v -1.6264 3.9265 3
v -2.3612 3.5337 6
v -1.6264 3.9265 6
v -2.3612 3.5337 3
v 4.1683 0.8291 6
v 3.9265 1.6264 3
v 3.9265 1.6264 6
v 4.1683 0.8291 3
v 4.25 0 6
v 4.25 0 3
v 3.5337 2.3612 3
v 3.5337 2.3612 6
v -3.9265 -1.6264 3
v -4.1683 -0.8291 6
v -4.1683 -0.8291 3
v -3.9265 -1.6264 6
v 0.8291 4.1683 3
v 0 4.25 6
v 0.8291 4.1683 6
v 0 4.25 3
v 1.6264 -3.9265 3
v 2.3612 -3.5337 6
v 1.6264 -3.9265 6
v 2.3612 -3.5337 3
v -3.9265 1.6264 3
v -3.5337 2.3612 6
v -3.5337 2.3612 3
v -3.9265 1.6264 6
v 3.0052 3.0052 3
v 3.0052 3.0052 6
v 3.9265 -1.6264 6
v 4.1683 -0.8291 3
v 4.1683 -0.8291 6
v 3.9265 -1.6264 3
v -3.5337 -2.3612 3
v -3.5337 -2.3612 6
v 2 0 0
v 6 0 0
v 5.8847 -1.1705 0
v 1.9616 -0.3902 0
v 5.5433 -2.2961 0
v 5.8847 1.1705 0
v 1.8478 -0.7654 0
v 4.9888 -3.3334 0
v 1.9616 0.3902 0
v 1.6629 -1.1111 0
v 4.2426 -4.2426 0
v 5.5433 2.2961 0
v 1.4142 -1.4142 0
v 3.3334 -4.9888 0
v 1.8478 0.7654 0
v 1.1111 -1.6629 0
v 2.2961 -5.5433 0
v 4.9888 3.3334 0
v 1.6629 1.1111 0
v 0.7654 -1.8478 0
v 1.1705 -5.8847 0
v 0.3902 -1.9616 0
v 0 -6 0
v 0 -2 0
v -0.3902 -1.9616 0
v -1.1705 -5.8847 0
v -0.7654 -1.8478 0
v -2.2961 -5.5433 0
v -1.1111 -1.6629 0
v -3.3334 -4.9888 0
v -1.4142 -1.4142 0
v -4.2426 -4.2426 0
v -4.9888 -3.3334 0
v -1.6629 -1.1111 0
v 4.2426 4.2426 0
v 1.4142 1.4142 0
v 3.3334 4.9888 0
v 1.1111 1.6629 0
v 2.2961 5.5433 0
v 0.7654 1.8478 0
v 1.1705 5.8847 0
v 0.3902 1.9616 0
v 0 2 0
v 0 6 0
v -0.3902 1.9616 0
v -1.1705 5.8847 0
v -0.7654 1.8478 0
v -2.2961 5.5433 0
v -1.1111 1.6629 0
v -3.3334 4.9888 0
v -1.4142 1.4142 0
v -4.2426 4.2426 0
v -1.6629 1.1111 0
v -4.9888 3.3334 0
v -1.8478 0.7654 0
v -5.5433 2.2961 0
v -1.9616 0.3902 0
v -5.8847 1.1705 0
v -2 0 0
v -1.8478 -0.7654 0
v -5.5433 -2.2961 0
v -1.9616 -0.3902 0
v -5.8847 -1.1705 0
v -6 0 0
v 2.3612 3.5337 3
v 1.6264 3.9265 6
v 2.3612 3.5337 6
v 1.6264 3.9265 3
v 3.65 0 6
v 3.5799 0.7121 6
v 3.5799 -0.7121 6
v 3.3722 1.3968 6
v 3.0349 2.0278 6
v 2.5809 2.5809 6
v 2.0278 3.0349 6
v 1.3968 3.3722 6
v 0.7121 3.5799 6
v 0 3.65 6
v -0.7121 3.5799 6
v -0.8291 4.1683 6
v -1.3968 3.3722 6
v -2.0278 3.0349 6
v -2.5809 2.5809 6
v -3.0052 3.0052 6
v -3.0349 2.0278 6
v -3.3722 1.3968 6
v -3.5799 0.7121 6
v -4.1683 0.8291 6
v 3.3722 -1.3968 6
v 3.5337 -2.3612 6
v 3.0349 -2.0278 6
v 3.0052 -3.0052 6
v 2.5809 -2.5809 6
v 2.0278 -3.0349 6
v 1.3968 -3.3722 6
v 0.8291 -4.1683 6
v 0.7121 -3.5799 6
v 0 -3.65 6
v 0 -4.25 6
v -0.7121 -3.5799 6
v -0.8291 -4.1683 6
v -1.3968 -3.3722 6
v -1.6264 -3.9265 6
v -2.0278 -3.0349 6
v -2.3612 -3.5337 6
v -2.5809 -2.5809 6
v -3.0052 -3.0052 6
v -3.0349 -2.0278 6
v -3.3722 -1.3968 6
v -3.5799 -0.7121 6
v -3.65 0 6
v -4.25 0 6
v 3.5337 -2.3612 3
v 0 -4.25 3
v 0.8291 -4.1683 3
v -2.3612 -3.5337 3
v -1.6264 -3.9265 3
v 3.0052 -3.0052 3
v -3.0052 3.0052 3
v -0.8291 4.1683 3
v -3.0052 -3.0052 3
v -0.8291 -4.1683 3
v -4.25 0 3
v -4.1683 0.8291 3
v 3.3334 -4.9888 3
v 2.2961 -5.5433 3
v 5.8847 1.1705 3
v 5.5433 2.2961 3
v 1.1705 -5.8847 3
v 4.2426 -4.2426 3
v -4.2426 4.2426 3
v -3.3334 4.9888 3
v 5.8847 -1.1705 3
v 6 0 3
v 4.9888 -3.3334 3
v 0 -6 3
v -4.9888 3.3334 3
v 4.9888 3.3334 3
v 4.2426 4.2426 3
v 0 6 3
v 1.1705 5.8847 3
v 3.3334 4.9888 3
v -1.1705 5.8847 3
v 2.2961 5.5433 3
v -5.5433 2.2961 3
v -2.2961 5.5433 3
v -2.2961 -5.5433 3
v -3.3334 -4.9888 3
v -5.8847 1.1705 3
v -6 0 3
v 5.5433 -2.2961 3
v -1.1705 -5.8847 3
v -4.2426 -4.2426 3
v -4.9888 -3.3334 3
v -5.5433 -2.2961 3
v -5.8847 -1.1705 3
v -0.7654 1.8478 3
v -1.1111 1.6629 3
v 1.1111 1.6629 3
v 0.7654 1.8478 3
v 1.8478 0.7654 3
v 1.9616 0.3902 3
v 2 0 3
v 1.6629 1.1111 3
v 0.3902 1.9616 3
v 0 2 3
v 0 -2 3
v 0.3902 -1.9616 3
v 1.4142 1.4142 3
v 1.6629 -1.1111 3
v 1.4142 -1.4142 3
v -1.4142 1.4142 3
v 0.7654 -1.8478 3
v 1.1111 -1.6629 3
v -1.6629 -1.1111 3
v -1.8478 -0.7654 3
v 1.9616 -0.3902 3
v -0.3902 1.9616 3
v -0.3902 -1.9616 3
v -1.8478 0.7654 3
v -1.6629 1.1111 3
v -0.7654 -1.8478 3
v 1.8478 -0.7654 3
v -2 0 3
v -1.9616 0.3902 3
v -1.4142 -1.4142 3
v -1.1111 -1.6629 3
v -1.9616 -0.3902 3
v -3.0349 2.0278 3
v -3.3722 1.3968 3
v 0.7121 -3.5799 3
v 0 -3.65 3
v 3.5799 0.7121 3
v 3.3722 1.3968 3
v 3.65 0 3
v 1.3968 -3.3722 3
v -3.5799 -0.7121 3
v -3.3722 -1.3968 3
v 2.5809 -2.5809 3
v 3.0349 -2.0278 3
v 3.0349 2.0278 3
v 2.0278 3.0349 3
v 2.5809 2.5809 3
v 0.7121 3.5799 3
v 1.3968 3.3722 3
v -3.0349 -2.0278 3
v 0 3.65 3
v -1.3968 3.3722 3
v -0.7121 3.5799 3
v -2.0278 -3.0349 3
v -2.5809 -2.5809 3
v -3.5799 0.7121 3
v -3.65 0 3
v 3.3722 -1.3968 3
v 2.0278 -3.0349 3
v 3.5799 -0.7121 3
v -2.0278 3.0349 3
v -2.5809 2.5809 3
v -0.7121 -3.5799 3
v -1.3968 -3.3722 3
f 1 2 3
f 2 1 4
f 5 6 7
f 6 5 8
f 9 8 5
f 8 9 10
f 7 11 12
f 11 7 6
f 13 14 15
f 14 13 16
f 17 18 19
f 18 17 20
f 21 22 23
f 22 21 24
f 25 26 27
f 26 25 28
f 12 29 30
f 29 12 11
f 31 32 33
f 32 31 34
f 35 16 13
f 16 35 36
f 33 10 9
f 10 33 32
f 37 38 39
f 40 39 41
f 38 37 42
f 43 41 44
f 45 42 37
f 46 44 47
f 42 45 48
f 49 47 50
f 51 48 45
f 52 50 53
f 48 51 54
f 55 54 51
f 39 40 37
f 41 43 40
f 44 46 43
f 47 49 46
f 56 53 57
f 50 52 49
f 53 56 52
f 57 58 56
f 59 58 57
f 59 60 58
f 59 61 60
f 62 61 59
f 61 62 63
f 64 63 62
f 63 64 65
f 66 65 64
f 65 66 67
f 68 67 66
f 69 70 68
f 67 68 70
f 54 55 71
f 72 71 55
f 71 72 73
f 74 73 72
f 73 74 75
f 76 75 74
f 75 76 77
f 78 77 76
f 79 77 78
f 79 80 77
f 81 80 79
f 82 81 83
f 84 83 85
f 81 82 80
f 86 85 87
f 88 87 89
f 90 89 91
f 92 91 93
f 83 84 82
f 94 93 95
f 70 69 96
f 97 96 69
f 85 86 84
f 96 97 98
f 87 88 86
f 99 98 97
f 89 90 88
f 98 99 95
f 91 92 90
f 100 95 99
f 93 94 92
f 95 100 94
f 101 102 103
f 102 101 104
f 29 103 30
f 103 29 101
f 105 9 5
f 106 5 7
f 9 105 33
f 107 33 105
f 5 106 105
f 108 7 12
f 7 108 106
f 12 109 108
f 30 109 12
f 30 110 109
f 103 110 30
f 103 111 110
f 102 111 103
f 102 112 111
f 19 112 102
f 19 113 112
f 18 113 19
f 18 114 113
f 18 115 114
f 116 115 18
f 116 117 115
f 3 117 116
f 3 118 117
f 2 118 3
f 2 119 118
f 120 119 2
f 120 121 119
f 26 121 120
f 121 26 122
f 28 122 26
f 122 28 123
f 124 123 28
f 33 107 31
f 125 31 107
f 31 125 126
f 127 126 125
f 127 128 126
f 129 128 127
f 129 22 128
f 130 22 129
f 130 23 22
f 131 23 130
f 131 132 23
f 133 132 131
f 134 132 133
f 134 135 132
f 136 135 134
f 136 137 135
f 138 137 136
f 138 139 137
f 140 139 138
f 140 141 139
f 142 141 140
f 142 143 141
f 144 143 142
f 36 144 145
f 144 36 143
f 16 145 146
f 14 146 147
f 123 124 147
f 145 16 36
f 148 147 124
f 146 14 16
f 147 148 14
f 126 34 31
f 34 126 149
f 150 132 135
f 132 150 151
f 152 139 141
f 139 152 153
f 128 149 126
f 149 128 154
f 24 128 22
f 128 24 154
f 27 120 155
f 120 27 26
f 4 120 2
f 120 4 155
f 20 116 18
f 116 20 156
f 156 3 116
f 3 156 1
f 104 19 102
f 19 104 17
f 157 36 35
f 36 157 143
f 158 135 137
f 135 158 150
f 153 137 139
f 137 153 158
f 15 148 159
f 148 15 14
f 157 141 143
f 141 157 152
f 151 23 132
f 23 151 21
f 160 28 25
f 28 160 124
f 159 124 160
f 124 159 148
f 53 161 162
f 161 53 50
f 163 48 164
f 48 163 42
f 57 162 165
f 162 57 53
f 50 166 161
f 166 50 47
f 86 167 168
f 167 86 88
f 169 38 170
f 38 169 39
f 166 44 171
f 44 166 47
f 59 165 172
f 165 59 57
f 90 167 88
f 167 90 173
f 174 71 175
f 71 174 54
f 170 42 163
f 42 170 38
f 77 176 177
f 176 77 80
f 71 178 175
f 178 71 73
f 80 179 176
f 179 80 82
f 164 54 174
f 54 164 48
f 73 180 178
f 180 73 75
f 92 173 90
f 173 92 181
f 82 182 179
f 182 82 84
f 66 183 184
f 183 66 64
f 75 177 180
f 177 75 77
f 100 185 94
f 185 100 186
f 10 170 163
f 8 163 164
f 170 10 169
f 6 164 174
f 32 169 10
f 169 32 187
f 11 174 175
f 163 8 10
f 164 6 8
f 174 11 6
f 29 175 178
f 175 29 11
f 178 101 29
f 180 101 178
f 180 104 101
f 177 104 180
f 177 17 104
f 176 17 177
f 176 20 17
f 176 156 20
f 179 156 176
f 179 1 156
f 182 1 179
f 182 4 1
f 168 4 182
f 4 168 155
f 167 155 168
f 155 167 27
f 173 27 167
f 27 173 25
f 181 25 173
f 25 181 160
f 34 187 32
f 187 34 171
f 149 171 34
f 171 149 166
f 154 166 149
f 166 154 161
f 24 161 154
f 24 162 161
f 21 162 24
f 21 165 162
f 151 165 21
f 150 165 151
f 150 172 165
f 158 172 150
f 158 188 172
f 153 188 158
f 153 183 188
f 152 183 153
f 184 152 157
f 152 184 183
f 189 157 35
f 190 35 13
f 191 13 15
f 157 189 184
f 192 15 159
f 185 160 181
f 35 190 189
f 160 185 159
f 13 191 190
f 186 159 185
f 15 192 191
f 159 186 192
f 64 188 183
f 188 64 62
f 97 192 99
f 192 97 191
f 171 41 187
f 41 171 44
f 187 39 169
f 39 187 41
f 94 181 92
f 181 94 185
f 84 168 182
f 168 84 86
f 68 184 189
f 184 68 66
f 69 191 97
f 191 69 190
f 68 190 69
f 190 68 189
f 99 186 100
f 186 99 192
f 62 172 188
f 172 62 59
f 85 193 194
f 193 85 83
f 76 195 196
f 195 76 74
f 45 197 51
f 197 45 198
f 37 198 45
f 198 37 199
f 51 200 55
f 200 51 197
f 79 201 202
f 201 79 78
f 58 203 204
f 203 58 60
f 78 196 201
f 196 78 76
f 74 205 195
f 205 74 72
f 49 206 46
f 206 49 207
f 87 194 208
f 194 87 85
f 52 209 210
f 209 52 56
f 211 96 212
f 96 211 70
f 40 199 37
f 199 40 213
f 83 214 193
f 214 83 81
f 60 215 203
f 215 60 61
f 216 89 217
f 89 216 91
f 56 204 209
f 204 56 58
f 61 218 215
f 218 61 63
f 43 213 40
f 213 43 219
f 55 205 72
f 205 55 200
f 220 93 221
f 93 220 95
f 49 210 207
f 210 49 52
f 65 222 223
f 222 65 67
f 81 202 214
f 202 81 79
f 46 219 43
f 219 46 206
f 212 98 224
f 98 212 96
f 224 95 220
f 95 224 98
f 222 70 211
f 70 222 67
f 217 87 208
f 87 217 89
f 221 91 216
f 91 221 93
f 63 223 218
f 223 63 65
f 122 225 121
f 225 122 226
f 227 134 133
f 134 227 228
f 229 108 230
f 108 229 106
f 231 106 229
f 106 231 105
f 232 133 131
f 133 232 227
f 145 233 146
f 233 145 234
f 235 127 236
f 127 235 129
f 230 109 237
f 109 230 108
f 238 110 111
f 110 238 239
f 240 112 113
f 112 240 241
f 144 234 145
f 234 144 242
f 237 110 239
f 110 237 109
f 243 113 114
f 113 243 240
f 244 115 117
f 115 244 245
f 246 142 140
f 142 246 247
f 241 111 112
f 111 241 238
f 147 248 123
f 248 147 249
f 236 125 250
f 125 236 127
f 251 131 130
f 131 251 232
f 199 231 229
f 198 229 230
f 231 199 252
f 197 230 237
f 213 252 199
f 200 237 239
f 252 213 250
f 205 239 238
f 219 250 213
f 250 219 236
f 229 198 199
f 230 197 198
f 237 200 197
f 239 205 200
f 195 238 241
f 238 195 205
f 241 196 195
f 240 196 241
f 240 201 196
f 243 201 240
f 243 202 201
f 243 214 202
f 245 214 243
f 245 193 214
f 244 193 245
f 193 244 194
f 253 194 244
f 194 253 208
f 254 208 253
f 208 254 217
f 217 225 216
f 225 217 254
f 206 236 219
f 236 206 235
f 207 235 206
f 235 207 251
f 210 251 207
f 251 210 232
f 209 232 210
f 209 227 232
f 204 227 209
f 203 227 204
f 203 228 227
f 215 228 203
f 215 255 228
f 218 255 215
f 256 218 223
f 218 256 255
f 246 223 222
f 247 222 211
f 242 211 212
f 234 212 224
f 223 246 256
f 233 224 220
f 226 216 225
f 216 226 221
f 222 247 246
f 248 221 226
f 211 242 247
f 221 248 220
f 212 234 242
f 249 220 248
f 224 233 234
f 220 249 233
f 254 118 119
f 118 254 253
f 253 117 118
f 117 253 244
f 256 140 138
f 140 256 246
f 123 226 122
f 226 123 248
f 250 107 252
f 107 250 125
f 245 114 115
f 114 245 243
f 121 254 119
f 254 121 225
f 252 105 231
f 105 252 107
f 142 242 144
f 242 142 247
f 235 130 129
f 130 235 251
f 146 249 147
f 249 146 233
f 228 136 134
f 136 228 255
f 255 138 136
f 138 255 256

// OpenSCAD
$fn=32;
difference(){
    union(){
        cylinder(r=8.5/2, h=6);
        cylinder(r=12/2, h=3);
    }
    
    translate([0,0,-0.5]) cylinder(r=4/2, h=6+1);
    
    translate([0,0,3]) cylinder(r=7.3/2, h=3+1);
}
